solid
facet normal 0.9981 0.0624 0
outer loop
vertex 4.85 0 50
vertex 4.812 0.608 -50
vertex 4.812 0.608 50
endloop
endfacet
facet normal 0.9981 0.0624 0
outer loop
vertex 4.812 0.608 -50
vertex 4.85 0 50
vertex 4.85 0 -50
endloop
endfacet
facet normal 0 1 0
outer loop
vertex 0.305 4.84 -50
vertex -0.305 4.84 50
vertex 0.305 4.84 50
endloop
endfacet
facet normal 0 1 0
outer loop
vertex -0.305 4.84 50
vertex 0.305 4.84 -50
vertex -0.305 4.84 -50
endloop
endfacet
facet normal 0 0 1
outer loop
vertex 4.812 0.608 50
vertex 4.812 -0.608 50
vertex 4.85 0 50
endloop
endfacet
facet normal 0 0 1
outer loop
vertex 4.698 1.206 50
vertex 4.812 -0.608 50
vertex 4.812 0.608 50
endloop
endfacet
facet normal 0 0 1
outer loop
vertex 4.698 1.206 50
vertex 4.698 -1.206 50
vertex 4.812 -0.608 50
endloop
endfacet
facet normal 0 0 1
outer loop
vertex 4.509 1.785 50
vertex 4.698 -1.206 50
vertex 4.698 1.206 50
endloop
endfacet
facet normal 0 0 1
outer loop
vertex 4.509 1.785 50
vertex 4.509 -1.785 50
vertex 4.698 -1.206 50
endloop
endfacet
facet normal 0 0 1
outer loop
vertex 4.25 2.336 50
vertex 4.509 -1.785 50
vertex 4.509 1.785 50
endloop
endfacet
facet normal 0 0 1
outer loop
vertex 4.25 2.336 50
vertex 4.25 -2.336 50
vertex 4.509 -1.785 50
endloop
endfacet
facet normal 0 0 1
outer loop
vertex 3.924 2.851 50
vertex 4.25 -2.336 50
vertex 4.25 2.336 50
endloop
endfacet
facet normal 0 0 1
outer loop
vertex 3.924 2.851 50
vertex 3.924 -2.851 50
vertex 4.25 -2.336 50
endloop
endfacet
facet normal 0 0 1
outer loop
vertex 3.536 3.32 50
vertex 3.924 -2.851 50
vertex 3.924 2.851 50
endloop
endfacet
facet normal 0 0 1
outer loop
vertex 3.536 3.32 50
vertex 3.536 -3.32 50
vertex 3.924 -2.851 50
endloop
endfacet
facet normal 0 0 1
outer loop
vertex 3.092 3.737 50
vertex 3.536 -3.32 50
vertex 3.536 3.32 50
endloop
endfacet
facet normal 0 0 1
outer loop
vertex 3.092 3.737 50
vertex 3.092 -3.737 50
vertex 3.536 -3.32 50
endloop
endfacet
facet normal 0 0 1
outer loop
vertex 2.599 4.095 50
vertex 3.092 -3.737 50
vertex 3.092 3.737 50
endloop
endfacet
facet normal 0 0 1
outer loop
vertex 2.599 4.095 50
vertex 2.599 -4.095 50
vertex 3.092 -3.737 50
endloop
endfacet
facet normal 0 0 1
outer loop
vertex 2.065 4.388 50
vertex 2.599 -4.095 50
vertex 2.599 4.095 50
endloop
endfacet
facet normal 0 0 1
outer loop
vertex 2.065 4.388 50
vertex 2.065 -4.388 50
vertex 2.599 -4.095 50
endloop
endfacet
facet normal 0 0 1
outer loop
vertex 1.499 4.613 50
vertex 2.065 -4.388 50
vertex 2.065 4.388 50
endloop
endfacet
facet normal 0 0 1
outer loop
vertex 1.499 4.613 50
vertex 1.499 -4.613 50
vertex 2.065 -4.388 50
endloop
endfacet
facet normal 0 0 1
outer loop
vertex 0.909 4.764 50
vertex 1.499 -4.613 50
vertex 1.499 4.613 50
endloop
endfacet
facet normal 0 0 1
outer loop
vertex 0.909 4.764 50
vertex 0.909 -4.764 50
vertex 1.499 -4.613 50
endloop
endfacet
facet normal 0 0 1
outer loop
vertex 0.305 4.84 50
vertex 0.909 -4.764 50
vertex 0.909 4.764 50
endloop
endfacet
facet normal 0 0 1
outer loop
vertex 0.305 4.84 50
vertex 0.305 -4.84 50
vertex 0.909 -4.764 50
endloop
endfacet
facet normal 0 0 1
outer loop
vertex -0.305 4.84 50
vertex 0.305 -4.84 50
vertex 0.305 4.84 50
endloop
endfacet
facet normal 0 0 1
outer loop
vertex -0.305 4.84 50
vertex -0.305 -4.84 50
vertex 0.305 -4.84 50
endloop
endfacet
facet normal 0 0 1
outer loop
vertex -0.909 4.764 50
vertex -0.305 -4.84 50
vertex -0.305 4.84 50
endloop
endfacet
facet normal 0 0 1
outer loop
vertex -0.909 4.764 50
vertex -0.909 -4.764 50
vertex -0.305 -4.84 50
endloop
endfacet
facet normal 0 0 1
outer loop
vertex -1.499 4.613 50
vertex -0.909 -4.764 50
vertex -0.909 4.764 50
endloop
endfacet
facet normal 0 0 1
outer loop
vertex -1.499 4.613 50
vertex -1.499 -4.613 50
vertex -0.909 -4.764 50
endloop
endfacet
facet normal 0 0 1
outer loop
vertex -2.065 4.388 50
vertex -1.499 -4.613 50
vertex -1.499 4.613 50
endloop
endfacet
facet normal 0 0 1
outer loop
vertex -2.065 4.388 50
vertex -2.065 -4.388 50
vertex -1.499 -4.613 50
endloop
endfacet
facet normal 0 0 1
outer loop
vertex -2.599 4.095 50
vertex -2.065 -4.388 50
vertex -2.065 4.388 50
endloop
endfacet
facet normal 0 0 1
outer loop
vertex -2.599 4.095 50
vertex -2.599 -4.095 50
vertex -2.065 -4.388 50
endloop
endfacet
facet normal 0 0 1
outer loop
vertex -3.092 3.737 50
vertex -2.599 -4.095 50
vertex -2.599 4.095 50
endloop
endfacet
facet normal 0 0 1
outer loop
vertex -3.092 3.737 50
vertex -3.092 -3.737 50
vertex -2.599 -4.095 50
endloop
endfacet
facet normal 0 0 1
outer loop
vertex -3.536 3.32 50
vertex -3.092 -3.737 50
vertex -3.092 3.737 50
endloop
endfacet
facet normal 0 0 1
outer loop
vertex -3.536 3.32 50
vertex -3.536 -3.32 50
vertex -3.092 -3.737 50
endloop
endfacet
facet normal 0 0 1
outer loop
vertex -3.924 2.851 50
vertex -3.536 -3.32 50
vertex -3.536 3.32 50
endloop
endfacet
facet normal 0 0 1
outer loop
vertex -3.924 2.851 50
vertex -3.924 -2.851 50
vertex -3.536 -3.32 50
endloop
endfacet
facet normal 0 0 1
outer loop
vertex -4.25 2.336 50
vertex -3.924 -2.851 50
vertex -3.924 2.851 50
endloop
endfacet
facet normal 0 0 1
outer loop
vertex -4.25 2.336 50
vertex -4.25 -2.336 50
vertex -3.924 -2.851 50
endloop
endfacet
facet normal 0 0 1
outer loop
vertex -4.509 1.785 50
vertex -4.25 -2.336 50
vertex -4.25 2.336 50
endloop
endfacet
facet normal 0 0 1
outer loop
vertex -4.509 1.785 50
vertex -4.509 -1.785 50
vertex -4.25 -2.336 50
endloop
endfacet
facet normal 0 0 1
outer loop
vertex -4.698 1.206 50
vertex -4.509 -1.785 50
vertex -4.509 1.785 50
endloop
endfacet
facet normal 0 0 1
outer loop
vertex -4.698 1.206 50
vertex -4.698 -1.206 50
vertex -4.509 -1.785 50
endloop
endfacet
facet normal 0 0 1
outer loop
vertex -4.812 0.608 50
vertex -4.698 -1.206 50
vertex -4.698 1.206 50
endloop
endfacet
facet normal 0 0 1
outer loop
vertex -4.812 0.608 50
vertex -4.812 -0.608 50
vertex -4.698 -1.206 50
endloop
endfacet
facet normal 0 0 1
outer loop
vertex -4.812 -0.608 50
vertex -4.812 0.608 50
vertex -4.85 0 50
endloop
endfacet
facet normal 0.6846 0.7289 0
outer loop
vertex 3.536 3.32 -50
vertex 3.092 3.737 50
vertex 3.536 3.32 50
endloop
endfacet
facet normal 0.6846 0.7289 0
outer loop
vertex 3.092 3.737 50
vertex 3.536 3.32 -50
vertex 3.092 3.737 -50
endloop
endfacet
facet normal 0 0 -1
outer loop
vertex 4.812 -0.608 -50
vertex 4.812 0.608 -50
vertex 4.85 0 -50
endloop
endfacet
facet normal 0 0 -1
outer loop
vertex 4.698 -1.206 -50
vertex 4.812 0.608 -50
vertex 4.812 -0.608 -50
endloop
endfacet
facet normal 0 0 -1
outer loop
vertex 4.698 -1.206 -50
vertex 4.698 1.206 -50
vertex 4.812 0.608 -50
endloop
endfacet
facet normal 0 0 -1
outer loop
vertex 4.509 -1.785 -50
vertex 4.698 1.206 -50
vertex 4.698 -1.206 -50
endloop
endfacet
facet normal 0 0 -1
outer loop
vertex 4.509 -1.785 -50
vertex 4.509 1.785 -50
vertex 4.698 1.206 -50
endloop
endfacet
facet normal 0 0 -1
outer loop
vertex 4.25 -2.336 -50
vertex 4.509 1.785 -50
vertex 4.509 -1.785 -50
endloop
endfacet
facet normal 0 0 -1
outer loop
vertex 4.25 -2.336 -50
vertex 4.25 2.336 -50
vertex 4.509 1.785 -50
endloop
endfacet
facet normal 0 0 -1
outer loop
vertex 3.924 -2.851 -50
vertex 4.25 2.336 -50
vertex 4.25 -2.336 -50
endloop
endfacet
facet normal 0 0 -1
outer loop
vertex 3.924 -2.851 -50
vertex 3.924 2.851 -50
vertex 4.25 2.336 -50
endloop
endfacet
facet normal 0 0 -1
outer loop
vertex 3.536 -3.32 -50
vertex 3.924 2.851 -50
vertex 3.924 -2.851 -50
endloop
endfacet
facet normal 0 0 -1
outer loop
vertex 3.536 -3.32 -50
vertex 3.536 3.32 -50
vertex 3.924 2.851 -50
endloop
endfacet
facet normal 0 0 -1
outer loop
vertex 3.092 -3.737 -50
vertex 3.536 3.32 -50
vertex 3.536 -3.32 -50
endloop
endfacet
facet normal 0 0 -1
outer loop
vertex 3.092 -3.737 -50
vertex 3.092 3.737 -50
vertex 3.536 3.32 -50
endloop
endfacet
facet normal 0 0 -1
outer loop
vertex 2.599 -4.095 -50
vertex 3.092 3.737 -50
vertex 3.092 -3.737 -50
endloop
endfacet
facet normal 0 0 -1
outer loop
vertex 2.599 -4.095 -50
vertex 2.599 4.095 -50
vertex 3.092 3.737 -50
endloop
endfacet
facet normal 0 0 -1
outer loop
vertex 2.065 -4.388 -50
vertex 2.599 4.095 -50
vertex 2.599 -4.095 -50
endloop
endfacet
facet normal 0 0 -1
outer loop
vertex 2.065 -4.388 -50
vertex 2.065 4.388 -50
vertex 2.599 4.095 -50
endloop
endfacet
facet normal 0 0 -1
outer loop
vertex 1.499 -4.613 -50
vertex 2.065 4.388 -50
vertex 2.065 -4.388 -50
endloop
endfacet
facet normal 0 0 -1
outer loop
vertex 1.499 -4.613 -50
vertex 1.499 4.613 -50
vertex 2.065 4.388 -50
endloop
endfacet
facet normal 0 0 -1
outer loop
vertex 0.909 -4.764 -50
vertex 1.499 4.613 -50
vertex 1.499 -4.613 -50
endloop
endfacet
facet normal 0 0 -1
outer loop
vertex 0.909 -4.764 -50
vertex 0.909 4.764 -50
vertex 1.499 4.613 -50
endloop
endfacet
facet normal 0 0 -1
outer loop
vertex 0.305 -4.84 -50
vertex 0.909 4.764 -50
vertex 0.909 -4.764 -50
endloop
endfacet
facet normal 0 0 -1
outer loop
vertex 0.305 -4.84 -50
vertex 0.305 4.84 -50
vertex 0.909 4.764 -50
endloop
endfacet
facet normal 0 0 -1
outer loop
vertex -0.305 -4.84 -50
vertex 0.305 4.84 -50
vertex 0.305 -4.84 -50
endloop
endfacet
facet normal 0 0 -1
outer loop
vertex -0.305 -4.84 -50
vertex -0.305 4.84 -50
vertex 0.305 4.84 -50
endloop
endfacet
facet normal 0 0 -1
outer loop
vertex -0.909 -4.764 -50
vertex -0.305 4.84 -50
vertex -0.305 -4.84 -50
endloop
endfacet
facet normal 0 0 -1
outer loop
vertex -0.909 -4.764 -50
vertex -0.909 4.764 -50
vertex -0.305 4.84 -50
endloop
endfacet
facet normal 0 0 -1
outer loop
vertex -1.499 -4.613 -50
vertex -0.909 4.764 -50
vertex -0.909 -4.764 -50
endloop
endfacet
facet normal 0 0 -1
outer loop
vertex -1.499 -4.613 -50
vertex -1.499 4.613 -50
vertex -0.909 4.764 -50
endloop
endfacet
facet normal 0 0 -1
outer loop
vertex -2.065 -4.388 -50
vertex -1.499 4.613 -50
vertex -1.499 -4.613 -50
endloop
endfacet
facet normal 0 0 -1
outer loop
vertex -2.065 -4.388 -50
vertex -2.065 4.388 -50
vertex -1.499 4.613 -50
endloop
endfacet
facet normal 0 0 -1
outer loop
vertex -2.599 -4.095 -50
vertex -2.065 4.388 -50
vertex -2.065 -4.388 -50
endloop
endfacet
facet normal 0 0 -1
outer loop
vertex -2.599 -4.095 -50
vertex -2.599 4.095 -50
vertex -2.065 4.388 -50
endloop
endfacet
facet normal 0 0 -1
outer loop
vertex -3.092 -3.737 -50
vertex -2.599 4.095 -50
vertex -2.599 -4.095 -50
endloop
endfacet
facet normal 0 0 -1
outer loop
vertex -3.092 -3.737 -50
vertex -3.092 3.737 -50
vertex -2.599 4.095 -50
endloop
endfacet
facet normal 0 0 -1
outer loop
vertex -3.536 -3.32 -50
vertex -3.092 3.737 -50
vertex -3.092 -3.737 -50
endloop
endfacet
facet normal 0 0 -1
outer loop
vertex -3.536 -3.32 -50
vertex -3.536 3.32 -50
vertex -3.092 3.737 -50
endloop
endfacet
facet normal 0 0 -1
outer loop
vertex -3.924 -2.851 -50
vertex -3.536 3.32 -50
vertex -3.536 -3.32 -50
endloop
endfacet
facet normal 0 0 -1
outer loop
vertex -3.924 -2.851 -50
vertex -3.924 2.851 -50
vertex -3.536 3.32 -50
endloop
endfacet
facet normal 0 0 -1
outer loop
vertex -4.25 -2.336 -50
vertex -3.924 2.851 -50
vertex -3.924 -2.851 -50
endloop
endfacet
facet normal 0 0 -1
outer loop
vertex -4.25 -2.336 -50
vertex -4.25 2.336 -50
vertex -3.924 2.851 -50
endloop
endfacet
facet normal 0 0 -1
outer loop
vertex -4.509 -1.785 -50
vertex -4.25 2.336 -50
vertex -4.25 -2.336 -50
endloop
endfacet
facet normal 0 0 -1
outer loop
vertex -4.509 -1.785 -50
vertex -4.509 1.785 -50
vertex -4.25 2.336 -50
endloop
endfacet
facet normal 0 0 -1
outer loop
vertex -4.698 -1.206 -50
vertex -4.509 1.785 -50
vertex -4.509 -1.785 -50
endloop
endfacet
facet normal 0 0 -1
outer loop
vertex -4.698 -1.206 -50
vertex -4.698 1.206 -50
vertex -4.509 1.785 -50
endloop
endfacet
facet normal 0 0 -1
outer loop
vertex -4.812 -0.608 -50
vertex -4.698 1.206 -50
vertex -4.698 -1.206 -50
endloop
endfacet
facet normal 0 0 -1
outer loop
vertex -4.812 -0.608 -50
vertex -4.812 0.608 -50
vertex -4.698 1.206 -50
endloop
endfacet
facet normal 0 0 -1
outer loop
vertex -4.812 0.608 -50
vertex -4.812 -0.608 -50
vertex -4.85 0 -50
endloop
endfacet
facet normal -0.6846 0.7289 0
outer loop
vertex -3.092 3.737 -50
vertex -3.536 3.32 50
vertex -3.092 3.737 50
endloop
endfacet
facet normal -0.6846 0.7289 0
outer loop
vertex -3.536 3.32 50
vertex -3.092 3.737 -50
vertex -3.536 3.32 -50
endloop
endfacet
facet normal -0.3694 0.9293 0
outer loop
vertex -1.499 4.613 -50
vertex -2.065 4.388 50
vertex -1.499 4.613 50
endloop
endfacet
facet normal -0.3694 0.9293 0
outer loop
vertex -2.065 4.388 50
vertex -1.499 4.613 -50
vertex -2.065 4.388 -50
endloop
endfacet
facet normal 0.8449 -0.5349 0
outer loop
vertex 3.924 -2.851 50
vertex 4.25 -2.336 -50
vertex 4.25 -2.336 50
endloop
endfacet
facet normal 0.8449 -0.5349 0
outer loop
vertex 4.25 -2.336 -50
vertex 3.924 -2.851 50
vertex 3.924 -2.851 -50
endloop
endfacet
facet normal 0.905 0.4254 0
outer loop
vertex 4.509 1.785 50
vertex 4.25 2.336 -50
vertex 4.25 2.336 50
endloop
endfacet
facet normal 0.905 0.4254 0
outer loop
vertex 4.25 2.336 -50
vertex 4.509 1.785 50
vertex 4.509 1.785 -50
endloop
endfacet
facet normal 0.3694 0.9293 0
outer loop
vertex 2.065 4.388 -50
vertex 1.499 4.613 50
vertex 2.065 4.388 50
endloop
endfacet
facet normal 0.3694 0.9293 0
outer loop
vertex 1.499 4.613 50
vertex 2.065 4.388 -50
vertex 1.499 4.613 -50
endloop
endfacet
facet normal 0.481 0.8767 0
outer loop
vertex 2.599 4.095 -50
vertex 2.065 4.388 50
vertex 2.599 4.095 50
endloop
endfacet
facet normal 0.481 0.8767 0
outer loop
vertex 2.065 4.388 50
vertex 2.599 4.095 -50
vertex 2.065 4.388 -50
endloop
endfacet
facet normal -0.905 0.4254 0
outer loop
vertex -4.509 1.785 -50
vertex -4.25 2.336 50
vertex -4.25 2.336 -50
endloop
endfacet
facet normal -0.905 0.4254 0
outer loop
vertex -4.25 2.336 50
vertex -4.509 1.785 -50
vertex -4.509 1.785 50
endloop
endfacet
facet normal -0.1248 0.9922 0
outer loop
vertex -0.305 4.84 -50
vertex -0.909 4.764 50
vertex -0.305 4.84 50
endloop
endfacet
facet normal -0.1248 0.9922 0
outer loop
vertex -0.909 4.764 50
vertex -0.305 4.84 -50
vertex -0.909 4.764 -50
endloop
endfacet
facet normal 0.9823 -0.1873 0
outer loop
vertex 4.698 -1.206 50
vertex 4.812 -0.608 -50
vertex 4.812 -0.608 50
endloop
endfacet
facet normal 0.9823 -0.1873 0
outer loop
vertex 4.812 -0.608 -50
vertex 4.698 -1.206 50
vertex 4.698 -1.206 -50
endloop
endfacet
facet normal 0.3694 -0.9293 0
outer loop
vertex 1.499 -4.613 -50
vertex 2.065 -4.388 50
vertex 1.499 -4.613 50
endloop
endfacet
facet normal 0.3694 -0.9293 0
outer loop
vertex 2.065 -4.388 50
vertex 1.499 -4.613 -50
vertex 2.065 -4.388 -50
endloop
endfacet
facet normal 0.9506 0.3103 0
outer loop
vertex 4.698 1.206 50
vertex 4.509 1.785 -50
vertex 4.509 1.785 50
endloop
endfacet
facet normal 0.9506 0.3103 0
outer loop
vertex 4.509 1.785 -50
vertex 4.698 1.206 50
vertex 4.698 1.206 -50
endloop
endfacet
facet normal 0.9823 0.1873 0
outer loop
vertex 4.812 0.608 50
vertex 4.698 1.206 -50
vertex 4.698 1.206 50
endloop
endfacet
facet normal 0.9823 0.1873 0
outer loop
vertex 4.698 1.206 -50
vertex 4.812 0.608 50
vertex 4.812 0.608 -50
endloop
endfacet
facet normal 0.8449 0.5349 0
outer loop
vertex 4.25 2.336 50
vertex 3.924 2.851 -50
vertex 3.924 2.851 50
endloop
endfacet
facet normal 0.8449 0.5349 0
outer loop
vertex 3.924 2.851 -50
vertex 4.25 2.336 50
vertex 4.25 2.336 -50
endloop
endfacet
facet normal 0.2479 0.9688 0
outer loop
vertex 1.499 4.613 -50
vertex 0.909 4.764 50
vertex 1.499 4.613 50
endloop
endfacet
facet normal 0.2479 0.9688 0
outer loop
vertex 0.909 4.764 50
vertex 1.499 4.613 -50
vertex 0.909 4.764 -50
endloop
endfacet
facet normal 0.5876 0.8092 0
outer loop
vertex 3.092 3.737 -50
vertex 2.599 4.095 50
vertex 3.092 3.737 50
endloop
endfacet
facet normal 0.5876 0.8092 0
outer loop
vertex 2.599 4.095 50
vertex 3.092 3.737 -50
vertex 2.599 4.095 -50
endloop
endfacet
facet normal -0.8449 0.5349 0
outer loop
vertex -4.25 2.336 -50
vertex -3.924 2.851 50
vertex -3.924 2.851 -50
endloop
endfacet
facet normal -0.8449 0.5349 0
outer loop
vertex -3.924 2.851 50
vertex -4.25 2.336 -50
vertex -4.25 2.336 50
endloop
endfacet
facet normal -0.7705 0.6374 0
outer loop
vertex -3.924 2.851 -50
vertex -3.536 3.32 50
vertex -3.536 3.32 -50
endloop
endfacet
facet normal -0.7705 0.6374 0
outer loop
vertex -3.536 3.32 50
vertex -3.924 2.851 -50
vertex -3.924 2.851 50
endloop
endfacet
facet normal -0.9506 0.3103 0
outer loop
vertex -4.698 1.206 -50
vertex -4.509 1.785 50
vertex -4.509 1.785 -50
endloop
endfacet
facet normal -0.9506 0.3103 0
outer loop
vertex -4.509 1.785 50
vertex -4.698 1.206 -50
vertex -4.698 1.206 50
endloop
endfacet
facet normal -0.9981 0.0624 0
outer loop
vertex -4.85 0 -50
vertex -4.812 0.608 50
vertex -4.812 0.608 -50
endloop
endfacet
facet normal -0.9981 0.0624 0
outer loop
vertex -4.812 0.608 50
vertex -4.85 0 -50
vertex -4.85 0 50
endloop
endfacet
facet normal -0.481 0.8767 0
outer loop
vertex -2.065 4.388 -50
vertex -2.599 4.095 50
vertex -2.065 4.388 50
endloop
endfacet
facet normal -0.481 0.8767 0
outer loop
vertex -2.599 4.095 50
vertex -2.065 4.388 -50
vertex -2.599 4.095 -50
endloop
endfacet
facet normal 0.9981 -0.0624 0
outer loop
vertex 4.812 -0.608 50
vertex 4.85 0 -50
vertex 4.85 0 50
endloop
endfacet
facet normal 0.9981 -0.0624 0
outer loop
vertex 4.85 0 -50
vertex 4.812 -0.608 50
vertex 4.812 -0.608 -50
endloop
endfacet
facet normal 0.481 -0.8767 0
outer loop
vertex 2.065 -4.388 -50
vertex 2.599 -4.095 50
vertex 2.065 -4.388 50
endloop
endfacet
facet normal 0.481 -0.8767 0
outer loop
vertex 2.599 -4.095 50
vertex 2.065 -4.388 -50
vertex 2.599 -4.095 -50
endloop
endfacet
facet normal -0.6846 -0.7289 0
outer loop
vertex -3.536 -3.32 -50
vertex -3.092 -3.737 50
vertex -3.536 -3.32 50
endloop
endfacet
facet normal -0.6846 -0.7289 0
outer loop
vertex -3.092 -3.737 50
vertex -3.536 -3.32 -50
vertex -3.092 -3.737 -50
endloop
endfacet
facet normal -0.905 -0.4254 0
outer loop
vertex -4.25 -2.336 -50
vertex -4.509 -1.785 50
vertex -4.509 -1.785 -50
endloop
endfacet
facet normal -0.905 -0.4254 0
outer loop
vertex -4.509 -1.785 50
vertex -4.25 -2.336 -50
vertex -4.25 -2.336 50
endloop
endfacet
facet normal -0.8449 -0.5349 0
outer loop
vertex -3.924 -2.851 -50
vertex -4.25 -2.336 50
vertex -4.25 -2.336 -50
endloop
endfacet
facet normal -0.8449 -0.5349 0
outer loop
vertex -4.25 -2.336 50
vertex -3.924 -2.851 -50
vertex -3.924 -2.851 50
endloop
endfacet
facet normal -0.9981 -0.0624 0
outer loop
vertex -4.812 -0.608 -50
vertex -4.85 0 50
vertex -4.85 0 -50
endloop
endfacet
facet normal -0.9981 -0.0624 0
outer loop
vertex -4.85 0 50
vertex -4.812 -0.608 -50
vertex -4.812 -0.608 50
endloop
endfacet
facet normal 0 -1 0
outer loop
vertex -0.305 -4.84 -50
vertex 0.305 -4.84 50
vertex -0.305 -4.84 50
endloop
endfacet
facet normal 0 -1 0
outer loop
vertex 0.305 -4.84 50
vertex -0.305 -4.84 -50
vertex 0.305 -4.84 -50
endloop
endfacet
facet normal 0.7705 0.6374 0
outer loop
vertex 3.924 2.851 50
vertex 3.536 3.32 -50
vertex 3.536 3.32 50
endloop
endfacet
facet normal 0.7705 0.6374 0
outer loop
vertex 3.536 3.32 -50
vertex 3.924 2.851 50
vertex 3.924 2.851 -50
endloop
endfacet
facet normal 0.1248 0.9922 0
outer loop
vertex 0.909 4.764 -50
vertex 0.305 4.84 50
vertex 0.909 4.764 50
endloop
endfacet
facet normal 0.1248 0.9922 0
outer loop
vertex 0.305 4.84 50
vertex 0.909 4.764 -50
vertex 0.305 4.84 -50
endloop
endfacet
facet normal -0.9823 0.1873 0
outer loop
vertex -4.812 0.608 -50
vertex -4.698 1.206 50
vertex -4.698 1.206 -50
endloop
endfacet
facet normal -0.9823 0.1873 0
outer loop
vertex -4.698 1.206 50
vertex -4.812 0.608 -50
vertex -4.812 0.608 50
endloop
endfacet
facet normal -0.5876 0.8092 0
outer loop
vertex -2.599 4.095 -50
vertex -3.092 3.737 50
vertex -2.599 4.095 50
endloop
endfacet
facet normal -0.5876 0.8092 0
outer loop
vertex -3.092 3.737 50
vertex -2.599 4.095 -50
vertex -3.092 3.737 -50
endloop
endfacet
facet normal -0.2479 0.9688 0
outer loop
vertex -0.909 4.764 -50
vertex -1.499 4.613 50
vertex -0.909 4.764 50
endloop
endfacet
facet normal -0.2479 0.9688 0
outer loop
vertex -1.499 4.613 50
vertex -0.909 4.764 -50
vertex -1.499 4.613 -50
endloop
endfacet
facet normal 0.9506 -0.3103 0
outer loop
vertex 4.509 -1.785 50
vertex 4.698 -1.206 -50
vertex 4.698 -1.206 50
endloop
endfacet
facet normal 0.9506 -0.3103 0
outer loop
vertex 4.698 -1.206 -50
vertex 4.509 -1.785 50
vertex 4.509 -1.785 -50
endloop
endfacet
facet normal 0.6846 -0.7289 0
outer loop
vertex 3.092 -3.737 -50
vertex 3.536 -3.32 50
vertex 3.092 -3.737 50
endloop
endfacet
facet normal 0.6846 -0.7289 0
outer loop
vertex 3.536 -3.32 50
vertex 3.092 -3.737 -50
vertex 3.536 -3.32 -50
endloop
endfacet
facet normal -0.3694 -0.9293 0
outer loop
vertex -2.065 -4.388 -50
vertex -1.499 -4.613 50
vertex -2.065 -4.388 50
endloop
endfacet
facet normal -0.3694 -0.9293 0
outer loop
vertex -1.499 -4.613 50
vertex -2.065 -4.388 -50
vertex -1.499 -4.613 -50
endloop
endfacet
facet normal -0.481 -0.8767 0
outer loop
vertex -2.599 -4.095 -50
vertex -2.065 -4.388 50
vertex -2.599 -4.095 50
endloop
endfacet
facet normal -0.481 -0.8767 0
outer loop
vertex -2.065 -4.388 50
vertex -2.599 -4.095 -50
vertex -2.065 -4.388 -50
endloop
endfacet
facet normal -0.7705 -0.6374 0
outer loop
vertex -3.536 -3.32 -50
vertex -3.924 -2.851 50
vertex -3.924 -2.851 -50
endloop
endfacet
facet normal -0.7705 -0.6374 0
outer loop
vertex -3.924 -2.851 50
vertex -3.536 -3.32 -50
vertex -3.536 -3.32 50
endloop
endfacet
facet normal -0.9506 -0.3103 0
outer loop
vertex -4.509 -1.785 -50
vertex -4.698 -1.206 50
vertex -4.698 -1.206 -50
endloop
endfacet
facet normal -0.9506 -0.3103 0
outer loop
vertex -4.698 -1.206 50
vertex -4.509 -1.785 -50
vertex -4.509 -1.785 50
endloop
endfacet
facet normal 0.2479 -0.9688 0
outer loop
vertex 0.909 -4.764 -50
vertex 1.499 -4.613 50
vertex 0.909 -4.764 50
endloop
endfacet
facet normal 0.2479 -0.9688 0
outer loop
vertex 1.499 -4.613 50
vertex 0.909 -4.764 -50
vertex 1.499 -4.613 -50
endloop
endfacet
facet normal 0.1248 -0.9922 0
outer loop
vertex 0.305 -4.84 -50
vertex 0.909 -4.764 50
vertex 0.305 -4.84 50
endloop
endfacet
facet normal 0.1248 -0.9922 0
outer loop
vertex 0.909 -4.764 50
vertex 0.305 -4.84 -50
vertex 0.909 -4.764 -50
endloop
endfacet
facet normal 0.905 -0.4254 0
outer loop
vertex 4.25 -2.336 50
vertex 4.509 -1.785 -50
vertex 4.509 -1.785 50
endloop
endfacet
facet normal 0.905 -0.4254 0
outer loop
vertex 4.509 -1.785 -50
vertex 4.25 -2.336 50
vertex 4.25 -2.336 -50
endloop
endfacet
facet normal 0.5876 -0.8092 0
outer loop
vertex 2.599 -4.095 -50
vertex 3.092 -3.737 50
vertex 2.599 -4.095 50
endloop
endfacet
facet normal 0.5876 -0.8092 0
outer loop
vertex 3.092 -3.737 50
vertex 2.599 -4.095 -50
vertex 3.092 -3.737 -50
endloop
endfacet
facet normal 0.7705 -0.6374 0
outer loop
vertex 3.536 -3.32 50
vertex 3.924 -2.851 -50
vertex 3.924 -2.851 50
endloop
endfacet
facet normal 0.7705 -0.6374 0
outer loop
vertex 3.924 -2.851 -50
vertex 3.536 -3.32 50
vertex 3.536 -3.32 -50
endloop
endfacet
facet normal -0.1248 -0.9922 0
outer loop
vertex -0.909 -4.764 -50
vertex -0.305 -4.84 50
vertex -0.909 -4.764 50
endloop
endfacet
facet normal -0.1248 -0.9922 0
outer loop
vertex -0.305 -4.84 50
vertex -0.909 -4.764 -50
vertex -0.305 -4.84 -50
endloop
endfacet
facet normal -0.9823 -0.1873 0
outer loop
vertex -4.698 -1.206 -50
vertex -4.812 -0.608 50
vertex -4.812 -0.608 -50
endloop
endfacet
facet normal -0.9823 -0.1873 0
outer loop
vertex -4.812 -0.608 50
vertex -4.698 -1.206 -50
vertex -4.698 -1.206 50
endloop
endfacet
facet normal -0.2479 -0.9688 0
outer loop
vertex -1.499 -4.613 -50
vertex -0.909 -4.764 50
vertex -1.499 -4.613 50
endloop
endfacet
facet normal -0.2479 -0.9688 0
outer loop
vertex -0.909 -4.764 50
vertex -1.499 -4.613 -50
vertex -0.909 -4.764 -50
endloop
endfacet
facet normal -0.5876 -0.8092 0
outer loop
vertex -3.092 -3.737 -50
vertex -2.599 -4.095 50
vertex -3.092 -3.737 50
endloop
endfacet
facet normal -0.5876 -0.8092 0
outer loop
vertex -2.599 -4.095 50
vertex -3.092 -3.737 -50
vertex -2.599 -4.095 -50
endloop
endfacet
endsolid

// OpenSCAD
$fn = 50;


difference() {
	union() {
		translate(v = [0, 0, -50.0000000000]) {
			cylinder(h = 100, r = 4.8500000000);
		}
	}
	union() {
		translate(v = [0, 0, -100.0000000000]) {
			cylinder(h = 200, r = 0);
		}
	}
}
